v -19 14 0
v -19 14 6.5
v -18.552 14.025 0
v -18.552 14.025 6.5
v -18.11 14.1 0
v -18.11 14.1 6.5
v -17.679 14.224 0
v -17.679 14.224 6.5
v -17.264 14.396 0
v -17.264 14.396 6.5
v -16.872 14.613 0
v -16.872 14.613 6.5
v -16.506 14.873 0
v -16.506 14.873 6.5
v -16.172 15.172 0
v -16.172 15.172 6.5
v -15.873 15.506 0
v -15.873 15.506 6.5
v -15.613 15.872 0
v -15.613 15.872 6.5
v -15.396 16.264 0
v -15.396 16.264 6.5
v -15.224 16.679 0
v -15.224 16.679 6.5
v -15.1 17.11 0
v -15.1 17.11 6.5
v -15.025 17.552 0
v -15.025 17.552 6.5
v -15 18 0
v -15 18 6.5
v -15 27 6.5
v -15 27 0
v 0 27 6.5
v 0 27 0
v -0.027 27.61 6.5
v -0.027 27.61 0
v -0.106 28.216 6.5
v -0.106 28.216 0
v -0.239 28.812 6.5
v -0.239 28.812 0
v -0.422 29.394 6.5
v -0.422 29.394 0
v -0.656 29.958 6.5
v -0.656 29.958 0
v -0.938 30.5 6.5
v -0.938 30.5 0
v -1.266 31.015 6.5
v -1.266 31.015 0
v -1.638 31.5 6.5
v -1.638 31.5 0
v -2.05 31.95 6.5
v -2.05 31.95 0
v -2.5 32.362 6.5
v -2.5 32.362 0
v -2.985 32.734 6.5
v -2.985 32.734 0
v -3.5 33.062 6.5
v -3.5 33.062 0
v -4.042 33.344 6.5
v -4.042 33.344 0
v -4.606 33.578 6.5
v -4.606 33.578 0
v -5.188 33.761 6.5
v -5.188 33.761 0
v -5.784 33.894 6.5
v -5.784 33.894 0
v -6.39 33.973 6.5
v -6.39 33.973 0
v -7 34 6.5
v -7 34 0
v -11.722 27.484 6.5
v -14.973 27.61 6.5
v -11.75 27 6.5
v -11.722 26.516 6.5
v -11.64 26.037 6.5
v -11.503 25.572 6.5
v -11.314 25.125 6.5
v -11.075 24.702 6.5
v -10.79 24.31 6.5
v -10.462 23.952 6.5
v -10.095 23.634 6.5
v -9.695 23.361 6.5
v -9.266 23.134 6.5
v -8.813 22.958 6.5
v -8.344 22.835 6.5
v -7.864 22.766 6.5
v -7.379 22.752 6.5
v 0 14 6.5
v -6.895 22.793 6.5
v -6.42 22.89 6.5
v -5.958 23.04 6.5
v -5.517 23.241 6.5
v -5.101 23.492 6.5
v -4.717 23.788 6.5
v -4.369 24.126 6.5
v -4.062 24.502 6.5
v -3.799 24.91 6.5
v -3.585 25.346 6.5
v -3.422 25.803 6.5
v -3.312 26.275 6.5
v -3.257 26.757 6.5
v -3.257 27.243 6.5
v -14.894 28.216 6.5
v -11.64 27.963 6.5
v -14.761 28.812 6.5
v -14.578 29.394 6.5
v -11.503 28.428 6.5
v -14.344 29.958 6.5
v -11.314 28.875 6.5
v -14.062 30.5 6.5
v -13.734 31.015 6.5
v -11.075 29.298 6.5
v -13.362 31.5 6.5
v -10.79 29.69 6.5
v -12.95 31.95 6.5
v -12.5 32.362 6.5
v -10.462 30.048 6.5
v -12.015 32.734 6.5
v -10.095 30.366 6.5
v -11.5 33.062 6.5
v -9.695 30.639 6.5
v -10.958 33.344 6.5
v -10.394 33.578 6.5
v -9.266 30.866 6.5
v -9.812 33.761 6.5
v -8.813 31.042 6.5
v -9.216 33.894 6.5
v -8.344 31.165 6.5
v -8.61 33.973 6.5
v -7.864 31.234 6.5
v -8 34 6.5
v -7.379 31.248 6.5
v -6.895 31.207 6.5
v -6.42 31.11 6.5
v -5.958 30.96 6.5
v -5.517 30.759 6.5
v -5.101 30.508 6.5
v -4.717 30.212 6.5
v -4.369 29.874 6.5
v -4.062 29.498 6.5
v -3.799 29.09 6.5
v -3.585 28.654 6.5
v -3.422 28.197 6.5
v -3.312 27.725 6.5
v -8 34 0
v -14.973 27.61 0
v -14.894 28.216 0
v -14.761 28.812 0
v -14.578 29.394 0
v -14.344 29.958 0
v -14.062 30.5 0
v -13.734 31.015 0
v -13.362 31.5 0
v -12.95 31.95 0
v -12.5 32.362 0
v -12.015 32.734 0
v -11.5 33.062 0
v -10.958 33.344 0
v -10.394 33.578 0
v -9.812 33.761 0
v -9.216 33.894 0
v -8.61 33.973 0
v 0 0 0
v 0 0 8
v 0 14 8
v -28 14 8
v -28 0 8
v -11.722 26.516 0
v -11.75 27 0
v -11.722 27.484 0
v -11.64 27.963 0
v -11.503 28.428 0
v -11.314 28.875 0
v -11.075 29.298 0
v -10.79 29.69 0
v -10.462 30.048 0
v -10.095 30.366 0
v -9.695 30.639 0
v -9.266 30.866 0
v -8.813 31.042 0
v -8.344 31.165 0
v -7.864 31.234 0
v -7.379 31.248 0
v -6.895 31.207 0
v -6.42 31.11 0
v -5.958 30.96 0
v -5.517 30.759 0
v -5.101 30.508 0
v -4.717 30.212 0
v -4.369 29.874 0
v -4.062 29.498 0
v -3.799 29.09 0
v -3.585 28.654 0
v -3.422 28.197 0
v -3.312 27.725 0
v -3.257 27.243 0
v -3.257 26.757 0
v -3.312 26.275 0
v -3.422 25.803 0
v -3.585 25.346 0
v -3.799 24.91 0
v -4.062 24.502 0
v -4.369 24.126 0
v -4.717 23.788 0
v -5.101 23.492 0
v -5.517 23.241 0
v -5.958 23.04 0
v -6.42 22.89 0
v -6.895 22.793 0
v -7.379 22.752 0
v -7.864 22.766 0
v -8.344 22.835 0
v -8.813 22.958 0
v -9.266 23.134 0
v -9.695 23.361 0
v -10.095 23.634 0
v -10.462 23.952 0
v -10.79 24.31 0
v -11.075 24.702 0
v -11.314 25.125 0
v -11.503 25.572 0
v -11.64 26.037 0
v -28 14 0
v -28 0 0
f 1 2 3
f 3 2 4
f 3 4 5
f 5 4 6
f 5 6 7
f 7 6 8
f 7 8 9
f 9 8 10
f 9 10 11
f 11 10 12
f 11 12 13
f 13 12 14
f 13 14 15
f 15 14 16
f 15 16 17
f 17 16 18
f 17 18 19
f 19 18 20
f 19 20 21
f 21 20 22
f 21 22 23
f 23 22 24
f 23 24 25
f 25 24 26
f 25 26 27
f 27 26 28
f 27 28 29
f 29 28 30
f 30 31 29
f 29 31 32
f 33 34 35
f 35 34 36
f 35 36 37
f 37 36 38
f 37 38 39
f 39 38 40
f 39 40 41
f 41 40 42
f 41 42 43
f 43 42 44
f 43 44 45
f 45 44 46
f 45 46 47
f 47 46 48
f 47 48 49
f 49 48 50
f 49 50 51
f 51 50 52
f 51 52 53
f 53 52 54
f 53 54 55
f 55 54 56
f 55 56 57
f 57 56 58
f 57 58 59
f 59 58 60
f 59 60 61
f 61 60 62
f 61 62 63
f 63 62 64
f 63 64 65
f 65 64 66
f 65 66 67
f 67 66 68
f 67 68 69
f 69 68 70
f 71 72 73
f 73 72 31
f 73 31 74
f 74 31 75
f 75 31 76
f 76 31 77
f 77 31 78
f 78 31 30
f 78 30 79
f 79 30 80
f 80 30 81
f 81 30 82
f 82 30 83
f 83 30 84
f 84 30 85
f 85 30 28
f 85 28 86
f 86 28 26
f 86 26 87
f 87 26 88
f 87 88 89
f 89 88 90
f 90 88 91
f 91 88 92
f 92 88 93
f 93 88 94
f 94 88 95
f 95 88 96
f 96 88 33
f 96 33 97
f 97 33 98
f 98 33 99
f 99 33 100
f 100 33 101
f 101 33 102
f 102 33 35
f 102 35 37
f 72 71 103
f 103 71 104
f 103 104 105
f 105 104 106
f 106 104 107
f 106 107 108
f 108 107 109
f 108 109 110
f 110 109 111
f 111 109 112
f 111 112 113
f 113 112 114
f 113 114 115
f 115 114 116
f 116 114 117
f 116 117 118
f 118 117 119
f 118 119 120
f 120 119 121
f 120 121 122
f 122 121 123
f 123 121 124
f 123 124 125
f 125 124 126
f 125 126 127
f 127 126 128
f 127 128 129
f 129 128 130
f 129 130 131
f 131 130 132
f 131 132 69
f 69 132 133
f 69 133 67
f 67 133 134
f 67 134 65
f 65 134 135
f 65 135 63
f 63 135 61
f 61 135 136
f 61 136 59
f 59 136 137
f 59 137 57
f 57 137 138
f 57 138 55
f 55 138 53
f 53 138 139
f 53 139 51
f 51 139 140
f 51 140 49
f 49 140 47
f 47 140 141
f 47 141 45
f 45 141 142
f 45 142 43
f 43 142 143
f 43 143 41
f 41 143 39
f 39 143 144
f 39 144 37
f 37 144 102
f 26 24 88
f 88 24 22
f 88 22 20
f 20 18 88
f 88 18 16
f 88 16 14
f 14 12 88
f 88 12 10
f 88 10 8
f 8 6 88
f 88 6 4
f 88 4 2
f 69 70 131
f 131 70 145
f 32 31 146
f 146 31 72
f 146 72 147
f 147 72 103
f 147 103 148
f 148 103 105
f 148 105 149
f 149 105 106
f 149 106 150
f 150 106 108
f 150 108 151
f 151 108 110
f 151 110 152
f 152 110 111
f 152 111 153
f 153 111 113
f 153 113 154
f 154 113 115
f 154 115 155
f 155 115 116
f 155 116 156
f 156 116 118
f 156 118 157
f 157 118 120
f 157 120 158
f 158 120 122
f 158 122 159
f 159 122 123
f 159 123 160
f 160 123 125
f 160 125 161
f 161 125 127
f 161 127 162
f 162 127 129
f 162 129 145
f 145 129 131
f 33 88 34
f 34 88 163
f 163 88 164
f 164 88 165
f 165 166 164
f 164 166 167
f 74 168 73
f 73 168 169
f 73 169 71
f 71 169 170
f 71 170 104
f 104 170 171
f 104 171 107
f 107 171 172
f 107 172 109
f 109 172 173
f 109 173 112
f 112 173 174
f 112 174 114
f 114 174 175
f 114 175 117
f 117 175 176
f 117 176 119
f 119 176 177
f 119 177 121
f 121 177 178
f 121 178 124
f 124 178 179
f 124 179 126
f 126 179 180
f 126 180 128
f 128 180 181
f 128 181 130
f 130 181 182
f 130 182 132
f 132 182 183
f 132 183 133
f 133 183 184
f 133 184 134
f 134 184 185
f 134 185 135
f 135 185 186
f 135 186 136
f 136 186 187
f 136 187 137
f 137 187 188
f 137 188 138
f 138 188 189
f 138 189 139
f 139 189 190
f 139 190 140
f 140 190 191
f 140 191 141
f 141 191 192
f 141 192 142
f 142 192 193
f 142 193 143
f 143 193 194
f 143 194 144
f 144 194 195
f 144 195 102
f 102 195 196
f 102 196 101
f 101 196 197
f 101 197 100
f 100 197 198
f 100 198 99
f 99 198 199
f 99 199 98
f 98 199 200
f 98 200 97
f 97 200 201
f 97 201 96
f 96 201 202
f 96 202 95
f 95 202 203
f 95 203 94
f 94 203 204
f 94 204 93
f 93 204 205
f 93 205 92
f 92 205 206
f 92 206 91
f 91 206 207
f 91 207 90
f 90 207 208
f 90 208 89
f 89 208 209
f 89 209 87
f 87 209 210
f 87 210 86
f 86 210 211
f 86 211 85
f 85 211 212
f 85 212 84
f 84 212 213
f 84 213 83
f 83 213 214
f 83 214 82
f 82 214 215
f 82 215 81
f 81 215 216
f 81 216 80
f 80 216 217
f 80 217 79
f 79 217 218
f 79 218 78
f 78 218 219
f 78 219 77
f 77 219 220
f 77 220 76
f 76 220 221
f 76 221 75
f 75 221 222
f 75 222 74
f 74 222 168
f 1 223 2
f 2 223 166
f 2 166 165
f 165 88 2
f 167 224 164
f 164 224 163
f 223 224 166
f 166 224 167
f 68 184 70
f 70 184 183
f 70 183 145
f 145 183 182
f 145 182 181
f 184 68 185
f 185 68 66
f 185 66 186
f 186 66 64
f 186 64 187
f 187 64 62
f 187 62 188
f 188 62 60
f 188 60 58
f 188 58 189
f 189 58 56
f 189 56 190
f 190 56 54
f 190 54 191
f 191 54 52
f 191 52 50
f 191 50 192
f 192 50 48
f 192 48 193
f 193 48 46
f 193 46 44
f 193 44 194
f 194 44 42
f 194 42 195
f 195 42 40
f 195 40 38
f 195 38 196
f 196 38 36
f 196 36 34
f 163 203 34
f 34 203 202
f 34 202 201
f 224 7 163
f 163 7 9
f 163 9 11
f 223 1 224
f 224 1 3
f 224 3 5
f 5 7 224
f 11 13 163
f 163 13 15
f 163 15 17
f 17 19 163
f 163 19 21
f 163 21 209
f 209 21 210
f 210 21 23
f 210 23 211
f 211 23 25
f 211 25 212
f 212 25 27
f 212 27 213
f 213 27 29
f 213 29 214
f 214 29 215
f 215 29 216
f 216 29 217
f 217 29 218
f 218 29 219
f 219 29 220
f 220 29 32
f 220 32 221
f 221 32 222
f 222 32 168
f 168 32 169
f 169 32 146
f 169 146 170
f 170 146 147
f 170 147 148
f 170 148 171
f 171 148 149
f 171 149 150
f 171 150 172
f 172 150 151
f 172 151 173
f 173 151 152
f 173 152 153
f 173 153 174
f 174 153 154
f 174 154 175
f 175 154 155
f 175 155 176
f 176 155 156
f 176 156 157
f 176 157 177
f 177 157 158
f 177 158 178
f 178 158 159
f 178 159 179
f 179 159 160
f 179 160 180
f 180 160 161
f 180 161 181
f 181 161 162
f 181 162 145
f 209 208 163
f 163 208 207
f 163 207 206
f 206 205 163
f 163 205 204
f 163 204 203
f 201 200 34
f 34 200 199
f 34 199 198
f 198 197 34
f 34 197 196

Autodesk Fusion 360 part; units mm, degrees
box "BoxPrimitive1" add length 8 width 28 height 14 placed x (0, 0, 1) y (1, 0, 0) z (0, 1, 0) at (-28, 0, 0)
box "BoxPrimitive2" add length 8 width 15 height 20 placed x (0, 0, 1) y (1, 0, 0) z (0, 1, 0) at (-15, 14, 0)
sketch "Sketch4" plane through (0, 0, 8) normal (0, 0, 1) x (1, 0, 0)
  line L0 (-28, 14) -> (-28, 0)
  line L1 (-28, 0) -> (0, 0)
  line L2 (0, 0) -> (0, 34)
  line L3 (0, 34) -> (-15, 34)
  line L4 (-15, 34) -> (-15, 14)
  line L5 (-15, 14) -> (-28, 14)
  line L6 (-15, 34) -> (0, 34)
  line L7 (0, 34) -> (0, 14)
  line L8 (0, 14) -> (-15, 14)
  line L9 (-15, 14) -> (-15, 34)
  line L10 (-7.5, 34) -> (-7.5, 14) construction
  point P0 (-7.5, 27)
  dimension "holeHeight" = 13
hole "Hole1" at (-7.5, 27, 8) direction (0, 0, -1) diameter 8.5 end through all
extrude "Extrude1" cut sketch "Sketch4" against normal blind 1.5 contours L2 L3 L4 L6 L7 L8 L9
fillet "Fillet2" radius 7 2 edges at (-15, 34, 3.25) (0, 34, 3.25)
fillet "Fillet3" radius 4 1 edges at (-15, 14, 3.25)
